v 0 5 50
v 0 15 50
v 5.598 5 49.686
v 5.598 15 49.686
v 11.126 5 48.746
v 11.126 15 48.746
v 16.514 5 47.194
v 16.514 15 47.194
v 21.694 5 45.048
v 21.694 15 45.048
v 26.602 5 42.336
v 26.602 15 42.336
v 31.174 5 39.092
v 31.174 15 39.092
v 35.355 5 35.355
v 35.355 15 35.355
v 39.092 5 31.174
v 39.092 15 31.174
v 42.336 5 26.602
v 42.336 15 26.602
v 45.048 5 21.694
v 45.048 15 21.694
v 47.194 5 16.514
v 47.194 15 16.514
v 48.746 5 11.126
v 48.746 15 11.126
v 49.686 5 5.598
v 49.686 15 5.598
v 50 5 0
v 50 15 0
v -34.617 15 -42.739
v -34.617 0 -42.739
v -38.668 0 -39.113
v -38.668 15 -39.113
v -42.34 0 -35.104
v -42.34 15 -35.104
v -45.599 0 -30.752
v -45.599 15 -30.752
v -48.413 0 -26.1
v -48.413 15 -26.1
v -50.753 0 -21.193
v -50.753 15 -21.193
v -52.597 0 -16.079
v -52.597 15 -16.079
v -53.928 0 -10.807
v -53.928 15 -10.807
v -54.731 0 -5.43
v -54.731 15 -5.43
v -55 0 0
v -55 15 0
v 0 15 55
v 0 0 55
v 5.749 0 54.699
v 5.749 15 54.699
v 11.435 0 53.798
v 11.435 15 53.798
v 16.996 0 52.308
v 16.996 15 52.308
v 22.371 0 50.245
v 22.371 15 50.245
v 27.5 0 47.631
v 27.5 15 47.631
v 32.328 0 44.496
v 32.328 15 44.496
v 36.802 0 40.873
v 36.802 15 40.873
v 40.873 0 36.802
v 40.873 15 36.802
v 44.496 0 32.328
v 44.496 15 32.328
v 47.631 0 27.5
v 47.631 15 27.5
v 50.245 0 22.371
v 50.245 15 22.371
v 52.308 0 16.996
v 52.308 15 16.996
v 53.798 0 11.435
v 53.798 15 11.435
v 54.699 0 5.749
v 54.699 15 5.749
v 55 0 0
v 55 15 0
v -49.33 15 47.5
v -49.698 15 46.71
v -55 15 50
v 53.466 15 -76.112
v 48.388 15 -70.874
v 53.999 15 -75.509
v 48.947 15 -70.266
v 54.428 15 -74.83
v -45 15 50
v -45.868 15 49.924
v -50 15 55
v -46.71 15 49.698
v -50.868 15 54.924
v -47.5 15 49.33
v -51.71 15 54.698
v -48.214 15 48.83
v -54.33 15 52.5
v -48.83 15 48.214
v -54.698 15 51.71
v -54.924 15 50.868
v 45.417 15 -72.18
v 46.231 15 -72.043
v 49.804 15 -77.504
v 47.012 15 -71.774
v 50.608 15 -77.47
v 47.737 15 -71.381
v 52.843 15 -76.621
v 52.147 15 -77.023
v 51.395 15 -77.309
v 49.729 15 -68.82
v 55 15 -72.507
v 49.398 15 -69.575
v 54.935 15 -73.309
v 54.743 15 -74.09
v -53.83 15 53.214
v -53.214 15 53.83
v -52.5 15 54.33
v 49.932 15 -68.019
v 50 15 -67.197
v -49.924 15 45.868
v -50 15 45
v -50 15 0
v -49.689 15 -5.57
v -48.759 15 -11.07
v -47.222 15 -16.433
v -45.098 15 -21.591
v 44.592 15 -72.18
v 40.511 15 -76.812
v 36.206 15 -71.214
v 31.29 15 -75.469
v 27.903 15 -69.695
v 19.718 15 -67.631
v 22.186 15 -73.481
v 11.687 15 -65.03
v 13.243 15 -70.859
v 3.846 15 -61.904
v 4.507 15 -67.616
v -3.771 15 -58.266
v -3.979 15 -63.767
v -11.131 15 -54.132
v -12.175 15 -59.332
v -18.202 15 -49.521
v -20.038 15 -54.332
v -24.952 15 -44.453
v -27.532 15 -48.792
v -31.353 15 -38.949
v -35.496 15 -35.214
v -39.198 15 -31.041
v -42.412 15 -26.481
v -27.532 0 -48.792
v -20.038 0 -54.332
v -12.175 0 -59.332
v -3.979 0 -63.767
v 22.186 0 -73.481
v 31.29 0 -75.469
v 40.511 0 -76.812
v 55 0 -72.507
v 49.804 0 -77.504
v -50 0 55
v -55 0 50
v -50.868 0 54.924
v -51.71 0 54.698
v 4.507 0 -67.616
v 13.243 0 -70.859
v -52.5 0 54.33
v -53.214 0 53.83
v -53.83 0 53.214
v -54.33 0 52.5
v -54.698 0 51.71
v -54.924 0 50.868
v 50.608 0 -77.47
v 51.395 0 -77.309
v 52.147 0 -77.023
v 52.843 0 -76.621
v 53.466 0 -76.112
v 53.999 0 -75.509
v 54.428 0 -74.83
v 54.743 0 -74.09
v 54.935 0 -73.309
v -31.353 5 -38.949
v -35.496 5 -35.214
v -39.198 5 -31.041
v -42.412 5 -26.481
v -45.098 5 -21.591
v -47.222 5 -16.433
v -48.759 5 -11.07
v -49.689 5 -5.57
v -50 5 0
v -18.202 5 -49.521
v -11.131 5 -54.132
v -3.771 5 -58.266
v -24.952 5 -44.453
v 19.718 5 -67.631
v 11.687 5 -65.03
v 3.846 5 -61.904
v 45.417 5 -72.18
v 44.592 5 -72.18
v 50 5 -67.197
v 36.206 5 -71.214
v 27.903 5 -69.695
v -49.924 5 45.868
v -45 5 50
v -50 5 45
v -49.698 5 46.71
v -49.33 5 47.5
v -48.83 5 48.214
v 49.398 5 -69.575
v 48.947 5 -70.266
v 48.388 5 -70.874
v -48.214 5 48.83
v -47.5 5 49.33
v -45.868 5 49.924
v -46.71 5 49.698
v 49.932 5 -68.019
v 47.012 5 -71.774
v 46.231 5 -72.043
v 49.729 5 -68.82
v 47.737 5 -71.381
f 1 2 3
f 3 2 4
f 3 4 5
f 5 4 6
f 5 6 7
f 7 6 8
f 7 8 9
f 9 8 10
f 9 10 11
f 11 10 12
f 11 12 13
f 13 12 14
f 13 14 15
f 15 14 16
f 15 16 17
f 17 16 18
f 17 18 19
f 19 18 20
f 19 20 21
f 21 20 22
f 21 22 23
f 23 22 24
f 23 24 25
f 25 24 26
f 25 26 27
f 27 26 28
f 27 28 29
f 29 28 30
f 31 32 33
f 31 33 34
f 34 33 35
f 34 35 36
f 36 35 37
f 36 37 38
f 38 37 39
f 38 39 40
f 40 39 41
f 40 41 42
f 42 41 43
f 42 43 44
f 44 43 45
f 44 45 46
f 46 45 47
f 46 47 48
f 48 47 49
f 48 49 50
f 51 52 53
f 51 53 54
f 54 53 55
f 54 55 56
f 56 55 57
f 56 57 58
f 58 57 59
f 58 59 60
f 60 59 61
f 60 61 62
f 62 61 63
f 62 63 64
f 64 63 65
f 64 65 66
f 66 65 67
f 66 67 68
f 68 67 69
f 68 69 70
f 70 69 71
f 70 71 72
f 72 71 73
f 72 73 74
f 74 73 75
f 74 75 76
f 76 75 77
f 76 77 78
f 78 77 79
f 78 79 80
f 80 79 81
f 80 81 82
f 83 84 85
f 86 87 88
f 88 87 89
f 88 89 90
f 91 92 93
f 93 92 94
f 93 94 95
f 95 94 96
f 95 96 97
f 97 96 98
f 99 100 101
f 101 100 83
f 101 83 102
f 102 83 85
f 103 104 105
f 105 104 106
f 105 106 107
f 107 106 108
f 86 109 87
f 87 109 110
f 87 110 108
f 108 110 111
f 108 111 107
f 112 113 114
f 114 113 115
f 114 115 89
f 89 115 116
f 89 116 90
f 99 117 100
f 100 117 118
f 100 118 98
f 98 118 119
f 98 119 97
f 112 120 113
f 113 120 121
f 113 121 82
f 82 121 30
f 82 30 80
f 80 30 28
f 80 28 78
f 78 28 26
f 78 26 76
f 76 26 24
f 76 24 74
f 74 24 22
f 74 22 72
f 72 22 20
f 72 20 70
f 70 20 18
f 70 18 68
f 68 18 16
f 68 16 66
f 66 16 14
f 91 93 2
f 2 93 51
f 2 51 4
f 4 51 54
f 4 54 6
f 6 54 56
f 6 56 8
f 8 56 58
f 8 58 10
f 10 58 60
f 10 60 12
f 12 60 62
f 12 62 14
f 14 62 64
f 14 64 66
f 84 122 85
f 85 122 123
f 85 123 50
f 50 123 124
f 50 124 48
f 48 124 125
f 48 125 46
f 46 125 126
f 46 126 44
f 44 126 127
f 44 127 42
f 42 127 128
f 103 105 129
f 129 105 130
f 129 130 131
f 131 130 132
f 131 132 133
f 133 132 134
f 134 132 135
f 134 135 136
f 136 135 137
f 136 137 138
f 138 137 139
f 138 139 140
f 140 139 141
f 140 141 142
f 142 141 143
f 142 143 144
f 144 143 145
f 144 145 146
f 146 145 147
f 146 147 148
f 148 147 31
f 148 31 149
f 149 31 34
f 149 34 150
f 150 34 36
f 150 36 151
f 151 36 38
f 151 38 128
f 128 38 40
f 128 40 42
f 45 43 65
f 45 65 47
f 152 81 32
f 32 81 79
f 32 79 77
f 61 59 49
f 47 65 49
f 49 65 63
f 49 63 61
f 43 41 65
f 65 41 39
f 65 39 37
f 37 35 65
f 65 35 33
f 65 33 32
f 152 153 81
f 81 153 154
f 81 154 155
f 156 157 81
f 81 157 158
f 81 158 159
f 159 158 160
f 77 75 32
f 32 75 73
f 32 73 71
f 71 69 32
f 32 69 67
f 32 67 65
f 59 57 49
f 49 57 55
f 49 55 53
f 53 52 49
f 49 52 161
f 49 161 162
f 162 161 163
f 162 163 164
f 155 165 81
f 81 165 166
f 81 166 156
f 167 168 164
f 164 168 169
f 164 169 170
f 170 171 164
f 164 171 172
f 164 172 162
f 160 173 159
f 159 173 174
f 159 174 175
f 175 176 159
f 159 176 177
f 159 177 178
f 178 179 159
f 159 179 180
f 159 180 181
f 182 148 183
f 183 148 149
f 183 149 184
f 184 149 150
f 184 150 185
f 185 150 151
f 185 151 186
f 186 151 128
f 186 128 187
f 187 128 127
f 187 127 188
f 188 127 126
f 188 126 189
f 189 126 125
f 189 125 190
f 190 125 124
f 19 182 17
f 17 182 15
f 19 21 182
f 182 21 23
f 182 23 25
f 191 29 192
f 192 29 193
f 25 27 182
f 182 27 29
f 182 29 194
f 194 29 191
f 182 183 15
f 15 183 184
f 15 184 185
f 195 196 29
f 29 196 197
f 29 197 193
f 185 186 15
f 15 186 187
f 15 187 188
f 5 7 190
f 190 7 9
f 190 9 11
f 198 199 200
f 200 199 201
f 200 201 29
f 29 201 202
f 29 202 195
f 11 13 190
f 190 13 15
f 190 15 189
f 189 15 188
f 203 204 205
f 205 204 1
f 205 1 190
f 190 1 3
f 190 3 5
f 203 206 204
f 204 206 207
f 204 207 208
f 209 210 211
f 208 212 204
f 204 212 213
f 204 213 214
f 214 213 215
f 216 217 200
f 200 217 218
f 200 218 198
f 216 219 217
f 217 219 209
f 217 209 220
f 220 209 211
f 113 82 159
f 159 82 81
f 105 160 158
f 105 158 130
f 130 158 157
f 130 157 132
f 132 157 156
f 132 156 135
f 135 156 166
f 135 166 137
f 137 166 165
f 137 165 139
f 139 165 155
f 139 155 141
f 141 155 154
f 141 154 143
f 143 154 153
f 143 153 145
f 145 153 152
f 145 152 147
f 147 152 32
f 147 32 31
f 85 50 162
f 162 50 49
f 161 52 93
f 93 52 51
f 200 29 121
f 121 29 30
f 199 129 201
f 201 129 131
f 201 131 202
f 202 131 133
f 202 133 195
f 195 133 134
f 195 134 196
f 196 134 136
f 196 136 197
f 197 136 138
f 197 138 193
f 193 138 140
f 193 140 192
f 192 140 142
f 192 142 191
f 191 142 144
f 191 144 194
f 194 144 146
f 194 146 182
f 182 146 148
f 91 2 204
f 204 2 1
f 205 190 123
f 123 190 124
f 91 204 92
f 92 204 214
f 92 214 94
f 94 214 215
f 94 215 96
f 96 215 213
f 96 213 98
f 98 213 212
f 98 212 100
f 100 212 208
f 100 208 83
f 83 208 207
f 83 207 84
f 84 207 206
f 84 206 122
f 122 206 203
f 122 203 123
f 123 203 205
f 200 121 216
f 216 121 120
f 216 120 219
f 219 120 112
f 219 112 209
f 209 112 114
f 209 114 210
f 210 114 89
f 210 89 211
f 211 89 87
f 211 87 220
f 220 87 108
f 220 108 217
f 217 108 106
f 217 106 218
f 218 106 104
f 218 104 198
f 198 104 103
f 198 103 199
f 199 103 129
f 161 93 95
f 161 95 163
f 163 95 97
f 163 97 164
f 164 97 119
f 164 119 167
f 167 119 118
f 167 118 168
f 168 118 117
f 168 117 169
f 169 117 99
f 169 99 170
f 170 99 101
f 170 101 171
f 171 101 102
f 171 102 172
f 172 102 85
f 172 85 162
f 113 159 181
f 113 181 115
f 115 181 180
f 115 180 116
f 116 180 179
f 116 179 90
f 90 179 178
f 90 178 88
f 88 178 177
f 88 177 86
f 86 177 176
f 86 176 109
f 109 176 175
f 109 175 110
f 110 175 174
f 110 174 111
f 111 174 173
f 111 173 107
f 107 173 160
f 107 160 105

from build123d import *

# Parameters (mm, degrees)
SKETCH_2_R          = 55
EXTRUDE_1_DEPTH     = 15
SKETCH_3_R          = 50
CUT_EXTRUDE_1_DEPTH = 10
EXTRUDE_3_DEPTH     = 15
CUT_EXTRUDE_4_DEPTH = 10
CUT_EXTRUDE_5_DEPTH = 10
FILLET_1_R          = 5
FILLET_2_R          = 5
FILLET_3_R          = 5


with BuildPart() as part:
    # 草圖2 → 填料-伸長1 (new body)
    with BuildSketch(Plane(origin=(0, 0, 0), x_dir=(1, 0, 0), z_dir=(0, 1, 0))):
        with Locations(Location((0, 0, 0), (0, 0, 270))):
            Circle(SKETCH_2_R)
    extrude(amount=EXTRUDE_1_DEPTH)

    # 草圖3 → 除料-伸長1 (cut)
    with BuildSketch(Plane(origin=(0, 15, 0), x_dir=(1, 0, 0), z_dir=(0, 1, 0))):
        with Locations(Location((0, 0, 0), (0, 0, 270))):
            Circle(SKETCH_3_R)
    extrude(amount=-CUT_EXTRUDE_1_DEPTH, mode=Mode.SUBTRACT)

    # 草圖8 → 填料-伸長3 (add)
    with BuildSketch(Plane.XZ):
        with BuildLine():
            ThreePointArc((55, 0), (23.675491822, -49.643439516), (-34.617130436, -42.739376228))
            ThreePointArc((-34.617130436, -42.739376228), (6.919661262, -68.581943503), (55, -77.605489076))
            Line((55, -77.605489076), (55, 0))
        make_face()
        with BuildLine():
            ThreePointArc((-55, 0), (-38.890872965, 38.890872965), (0, 55))
            Line((0, 55), (-55, 55))
            Line((-55, 55), (-55, 0))
        make_face()
    extrude(amount=-EXTRUDE_3_DEPTH)

    # 草圖9 → 除料-伸長4 (cut)
    with BuildSketch(Plane(origin=(0, 15, 0), x_dir=(1, 0, 0), z_dir=(0, 1, 0))):
        with BuildLine():
            ThreePointArc((-31.352560089, 38.948902113), (21.591340805, 45.097827023), (50, 0))
            Line((50, 0), (50, 72.507493279))
            ThreePointArc((50, 72.507493279), (6.339263066, 62.963102381), (-31.352560089, 38.948902113))
        make_face()
    extrude(amount=-CUT_EXTRUDE_4_DEPTH, mode=Mode.SUBTRACT)

    # 草圖10 → 除料-伸長5 (cut)
    with BuildSketch(Plane(origin=(0, 15, 0), x_dir=(1, 0, 0), z_dir=(0, 1, 0))):
        with BuildLine():
            Line((0, -50), (-50, -50))
            Line((-50, -50), (-50, 0))
            ThreePointArc((-50, 0), (-35.355339059, -35.355339059), (0, -50))
        make_face()
    extrude(amount=-CUT_EXTRUDE_5_DEPTH, mode=Mode.SUBTRACT)

    # 圓角1
    fillet_1_edges = [part.edges().sort_by_distance(p)[0] for p in [
        (-50, 10, 50),
    ]]
    fillet(fillet_1_edges, radius=FILLET_1_R)

    # 圓角2
    fillet_2_edges = [part.edges().sort_by_distance(p)[0] for p in [
        (50, 10, -72.507493279),
    ]]
    fillet(fillet_2_edges, radius=FILLET_2_R)

    # 圓角3
    fillet_3_edges = [part.edges().sort_by_distance(p)[0] for p in [
        (55, 7.5, -77.605489076),
        (-55, 7.5, 55),
    ]]
    fillet(fillet_3_edges, radius=FILLET_3_R)


solid = part.part
